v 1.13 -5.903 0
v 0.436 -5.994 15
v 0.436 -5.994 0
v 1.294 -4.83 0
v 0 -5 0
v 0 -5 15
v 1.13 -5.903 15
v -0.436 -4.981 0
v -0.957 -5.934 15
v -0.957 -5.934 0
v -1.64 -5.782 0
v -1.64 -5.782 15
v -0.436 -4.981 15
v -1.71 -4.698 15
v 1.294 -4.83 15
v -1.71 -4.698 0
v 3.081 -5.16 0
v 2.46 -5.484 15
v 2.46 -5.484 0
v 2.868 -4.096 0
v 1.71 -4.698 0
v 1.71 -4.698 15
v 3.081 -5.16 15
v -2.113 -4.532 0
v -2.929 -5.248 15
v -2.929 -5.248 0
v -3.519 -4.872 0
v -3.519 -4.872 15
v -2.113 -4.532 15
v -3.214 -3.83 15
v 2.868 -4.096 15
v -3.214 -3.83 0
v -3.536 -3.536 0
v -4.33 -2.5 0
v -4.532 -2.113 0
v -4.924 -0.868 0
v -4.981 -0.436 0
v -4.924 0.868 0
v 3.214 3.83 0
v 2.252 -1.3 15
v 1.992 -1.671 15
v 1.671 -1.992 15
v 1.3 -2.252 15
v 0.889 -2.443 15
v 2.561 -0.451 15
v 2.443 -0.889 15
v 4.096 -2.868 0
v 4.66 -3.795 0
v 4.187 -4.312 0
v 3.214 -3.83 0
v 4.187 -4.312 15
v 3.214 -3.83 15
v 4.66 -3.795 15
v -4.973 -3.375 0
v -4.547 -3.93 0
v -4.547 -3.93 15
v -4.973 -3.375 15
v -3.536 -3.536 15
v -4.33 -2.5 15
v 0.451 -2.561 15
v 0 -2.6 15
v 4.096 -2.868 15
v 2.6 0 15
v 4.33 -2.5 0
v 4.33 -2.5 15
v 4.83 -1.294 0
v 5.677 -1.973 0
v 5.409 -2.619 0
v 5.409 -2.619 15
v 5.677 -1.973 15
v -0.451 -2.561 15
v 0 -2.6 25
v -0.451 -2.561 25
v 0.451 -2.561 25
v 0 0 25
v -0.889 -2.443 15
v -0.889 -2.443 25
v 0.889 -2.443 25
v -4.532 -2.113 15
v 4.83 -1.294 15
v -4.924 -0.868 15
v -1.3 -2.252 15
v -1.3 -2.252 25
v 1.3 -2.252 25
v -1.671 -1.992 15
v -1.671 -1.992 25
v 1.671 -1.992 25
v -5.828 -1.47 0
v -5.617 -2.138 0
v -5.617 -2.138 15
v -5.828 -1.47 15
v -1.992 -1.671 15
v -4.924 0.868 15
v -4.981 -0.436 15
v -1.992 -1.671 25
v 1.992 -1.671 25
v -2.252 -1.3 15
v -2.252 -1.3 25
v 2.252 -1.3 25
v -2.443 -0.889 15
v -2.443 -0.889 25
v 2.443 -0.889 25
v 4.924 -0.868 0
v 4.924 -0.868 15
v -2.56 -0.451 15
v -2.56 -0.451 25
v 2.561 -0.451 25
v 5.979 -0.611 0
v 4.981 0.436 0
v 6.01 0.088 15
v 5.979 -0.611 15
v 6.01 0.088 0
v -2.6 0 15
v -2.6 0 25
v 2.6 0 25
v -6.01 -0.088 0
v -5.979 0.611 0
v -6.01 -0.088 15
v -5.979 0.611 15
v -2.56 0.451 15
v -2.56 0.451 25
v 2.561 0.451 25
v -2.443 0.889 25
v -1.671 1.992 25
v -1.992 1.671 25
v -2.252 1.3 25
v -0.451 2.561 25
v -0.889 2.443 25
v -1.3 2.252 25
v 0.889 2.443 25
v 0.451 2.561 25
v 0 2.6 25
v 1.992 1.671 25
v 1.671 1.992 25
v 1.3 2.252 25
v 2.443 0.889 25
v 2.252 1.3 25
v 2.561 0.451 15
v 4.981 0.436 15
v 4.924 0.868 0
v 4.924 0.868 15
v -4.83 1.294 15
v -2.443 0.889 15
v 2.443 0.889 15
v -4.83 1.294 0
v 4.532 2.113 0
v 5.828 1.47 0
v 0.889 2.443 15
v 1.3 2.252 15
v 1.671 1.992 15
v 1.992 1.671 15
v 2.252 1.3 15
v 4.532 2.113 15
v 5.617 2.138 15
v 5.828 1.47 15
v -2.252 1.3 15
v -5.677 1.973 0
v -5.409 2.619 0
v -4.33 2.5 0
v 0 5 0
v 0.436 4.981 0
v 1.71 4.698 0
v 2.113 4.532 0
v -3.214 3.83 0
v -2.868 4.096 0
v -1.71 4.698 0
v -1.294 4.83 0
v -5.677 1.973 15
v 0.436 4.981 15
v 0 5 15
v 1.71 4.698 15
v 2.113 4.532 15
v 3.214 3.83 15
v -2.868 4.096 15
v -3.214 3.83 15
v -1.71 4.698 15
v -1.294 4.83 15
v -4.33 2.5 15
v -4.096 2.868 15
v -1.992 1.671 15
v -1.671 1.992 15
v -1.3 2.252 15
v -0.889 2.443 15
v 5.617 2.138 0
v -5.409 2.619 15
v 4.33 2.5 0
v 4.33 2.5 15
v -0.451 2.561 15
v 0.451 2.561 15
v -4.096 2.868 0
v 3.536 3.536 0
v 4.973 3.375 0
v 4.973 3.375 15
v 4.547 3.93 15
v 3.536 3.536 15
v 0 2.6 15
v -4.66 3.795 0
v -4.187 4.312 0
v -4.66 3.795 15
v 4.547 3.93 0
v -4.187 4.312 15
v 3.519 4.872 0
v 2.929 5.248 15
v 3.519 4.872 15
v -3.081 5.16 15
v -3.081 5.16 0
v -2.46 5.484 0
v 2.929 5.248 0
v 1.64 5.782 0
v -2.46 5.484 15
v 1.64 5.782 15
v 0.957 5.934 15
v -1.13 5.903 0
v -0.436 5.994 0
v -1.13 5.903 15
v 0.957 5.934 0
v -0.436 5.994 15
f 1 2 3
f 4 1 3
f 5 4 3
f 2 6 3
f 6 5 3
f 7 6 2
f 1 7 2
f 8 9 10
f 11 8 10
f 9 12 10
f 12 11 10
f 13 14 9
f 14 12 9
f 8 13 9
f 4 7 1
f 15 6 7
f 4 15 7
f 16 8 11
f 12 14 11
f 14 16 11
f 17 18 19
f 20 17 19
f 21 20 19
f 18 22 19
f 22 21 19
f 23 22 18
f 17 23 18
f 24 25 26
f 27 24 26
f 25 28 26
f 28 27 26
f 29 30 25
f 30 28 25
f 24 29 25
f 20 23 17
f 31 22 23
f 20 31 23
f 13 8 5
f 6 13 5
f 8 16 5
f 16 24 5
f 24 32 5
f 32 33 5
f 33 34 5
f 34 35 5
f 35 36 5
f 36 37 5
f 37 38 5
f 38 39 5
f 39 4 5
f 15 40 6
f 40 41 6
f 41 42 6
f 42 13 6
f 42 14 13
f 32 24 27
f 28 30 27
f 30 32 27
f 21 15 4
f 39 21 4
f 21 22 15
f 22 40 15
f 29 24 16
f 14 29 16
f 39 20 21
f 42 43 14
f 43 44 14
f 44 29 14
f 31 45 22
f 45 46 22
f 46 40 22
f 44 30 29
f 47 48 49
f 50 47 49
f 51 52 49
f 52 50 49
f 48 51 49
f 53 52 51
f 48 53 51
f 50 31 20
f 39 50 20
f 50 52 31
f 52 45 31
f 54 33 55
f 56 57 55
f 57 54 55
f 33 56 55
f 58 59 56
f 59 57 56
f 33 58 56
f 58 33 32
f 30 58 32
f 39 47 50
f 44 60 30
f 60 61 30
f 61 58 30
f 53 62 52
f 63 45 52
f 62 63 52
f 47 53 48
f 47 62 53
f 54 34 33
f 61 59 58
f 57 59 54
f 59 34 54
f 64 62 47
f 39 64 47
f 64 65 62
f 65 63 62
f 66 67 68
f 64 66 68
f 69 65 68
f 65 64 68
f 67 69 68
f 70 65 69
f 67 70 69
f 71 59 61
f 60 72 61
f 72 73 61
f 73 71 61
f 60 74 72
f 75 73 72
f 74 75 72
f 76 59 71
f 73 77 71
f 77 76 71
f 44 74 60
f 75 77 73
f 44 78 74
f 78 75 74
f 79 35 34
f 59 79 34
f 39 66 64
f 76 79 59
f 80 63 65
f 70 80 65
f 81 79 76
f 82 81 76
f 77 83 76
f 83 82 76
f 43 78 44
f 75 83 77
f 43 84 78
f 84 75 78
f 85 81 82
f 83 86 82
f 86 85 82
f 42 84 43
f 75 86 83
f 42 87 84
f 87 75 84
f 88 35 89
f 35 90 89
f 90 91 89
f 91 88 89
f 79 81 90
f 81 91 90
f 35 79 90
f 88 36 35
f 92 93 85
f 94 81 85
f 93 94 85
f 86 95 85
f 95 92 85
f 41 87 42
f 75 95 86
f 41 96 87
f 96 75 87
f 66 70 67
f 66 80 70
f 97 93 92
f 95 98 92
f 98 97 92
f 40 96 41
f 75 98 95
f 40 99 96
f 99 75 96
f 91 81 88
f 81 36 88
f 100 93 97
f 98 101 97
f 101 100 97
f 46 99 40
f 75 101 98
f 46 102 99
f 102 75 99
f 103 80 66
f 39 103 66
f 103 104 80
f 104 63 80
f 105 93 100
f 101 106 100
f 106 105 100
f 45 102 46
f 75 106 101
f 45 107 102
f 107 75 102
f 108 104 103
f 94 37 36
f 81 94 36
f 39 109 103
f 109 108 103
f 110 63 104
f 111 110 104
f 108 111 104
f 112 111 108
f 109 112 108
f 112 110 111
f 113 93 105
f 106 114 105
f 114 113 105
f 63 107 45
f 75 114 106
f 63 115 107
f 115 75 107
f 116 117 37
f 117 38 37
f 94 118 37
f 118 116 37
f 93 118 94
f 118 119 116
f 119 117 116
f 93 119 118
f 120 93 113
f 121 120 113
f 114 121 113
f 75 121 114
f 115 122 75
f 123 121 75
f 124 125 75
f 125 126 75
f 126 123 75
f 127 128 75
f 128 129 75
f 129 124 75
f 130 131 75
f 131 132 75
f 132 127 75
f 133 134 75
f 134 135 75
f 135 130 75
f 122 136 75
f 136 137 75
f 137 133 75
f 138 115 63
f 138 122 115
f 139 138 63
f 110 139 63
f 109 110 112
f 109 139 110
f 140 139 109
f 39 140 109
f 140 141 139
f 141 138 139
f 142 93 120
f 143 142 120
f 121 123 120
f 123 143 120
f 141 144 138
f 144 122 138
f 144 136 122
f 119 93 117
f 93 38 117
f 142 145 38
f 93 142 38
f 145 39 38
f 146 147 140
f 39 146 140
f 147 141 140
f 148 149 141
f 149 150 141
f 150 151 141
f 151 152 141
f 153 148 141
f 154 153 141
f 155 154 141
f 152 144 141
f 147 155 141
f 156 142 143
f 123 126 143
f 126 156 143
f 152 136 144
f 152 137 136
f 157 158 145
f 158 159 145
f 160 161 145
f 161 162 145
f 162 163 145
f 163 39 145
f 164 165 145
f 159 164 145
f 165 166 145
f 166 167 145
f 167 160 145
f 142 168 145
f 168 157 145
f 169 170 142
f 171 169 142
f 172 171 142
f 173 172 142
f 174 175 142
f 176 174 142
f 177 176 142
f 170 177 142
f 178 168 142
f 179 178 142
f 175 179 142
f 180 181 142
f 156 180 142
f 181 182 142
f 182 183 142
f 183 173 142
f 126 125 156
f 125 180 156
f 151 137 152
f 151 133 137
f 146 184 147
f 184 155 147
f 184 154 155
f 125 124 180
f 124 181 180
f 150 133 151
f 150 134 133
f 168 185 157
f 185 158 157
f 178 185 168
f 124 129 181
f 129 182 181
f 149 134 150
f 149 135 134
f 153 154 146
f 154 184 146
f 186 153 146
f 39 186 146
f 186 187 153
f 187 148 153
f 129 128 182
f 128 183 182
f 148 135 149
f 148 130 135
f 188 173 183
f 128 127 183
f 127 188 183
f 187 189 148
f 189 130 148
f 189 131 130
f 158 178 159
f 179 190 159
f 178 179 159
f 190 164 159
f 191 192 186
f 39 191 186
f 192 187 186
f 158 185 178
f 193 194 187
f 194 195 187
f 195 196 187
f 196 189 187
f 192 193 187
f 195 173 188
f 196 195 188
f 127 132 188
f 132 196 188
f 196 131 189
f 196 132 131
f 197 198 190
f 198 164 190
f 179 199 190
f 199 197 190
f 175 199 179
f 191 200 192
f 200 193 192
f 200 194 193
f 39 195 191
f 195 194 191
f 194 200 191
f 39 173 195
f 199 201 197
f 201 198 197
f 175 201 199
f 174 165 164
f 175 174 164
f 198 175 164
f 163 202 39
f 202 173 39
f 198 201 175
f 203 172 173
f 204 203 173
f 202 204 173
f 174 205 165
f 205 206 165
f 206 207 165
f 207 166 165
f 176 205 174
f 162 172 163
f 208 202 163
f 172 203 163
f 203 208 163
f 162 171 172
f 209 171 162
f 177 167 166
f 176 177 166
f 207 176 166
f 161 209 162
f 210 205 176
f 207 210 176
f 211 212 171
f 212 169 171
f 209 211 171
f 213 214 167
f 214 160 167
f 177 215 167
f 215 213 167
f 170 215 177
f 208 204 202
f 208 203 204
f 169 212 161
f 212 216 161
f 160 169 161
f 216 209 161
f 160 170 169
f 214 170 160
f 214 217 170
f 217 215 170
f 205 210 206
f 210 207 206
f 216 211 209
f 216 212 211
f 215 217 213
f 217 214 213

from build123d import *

# Parameters (mm, degrees)
SKETCH1_R           = 5
BOSS_EXTRUDE1_DEPTH = 15
SKETCH1_3_R         = 2.6
BOSS_EXTRUDE2_DEPTH = 25
BOSS_EXTRUDE3_DEPTH = 15


with BuildPart() as part:
    # Sketch1 → Boss-Extrude1 (new body)
    with BuildSketch(Plane.XY):
        Circle(SKETCH1_R)
    extrude(amount=BOSS_EXTRUDE1_DEPTH)

    # Sketch1<3> → Boss-Extrude2 (add)
    with BuildSketch(Plane.XY):
        Circle(SKETCH1_3_R)
    extrude(amount=BOSS_EXTRUDE2_DEPTH)

    # Sketch2 → Boss-Extrude3 (add)
    with BuildSketch(Plane(origin=(0, 0, 0), x_dir=(-1, 0, 0), z_dir=(0, 0, -1))):
        with BuildLine():
            Line((0.436151452, 5.994353336), (1.130162855, 5.902985001))
            Line((1.130162855, 5.902985001), (1.294095226, 4.829629131))
            ThreePointArc((1.294095226, 4.829629131), (0.652630961, 4.957224307), (0, 5))
            Line((0, 5), (0.436151452, 5.994353336))
        make_face()
        with BuildLine():
            Line((2.460037888, 5.483677014), (3.080945471, 5.160452984))
            Line((3.080945471, 5.160452984), (2.867882182, 4.095760221))
            ThreePointArc((2.867882182, 4.095760221), (2.308743066, 4.435054166), (1.710100717, 4.698463104))
            Line((1.710100717, 4.698463104), (2.460037888, 5.483677014))
        make_face()
        with BuildLine():
            Line((4.187207448, 4.311588314), (4.660120594, 3.795494178))
            Line((4.660120594, 3.795494178), (4.095760221, 2.867882182))
            ThreePointArc((4.095760221, 2.867882182), (3.686386684, 3.377951038), (3.213938048, 3.830222216))
            Line((3.213938048, 3.830222216), (4.187207448, 4.311588314))
        make_face()
        with BuildLine():
            Line((5.409337994, 2.619458431), (5.677216396, 1.972742758))
            Line((5.677216396, 1.972742758), (4.829629131, 1.294095226))
            ThreePointArc((4.829629131, 1.294095226), (4.619397663, 1.913417162), (4.330127019, 2.5))
            Line((4.330127019, 2.5), (5.409337994, 2.619458431))
        make_face()
        with BuildLine():
            Line((5.979022544, 0.611383202), (6.009556115, -0.087950553))
            Line((6.009556115, -0.087950553), (4.98097349, -0.435778714))
            ThreePointArc((4.98097349, -0.435778714), (4.995241108, 0.218096937), (4.924038765, 0.868240888))
            Line((4.924038765, 0.868240888), (5.979022544, 0.611383202))
        make_face()
        with BuildLine():
            Line((5.827548734, -1.470433864), (5.617054675, -2.13803573))
            Line((5.617054675, -2.13803573), (4.531538935, -2.113091309))
            ThreePointArc((4.531538935, -2.113091309), (4.768584754, -1.503528998), (4.924038765, -0.868240888))
            Line((4.924038765, -0.868240888), (5.827548734, -1.470433864))
        make_face()
        with BuildLine():
            Line((4.973186542, -3.374894905), (4.547053542, -3.930242243))
            Line((4.547053542, -3.930242243), (3.535533906, -3.535533906))
            ThreePointArc((3.535533906, -3.535533906), (3.966766701, -3.043807145), (4.330127019, -2.5))
            Line((4.330127019, -2.5), (4.973186542, -3.374894905))
        make_face()
        with BuildLine():
            Line((3.518984656, -4.872293812), (2.928610644, -5.248403538))
            Line((2.928610644, -5.248403538), (2.113091309, -4.531538935))
            ThreePointArc((2.113091309, -4.531538935), (2.686498042, -4.216957229), (3.213938048, -3.830222216))
            Line((3.213938048, -3.830222216), (3.518984656, -4.872293812))
        make_face()
        with BuildLine():
            Line((1.640341286, -5.782022178), (0.956934081, -5.933529908))
            Line((0.956934081, -5.933529908), (0.435778714, -4.98097349))
            ThreePointArc((0.435778714, -4.98097349), (1.08219807, -4.881480036), (1.710100717, -4.698463104))
            Line((1.710100717, -4.698463104), (1.640341286, -5.782022178))
        make_face()
        with BuildLine():
            Line((-0.436151452, -5.994353336), (-1.130162855, -5.902985001))
            Line((-1.130162855, -5.902985001), (-1.294095226, -4.829629131))
            ThreePointArc((-1.294095226, -4.829629131), (-0.652630961, -4.957224307), (0, -5))
            Line((0, -5), (-0.436151452, -5.994353336))
        make_face()
        with BuildLine():
            Line((-2.460037888, -5.483677014), (-3.080945471, -5.160452984))
            Line((-3.080945471, -5.160452984), (-2.867882182, -4.095760221))
            ThreePointArc((-2.867882182, -4.095760221), (-2.308743066, -4.435054166), (-1.710100717, -4.698463104))
            Line((-1.710100717, -4.698463104), (-2.460037888, -5.483677014))
        make_face()
        with BuildLine():
            Line((-4.187207448, -4.311588314), (-4.660120594, -3.795494178))
            Line((-4.660120594, -3.795494178), (-4.095760221, -2.867882182))
            ThreePointArc((-4.095760221, -2.867882182), (-3.686386684, -3.377951038), (-3.213938048, -3.830222216))
            Line((-3.213938048, -3.830222216), (-4.187207448, -4.311588314))
        make_face()
        with BuildLine():
            Line((-5.409337994, -2.619458431), (-5.677216396, -1.972742758))
            Line((-5.677216396, -1.972742758), (-4.829629131, -1.294095226))
            ThreePointArc((-4.829629131, -1.294095226), (-4.619397663, -1.913417162), (-4.330127019, -2.5))
            Line((-4.330127019, -2.5), (-5.409337994, -2.619458431))
        make_face()
        with BuildLine():
            Line((-5.979022544, -0.611383202), (-6.009556115, 0.087950553))
            Line((-6.009556115, 0.087950553), (-4.98097349, 0.435778714))
            ThreePointArc((-4.98097349, 0.435778714), (-4.995241108, -0.218096937), (-4.924038765, -0.868240888))
            Line((-4.924038765, -0.868240888), (-5.979022544, -0.611383202))
        make_face()
        with BuildLine():
            Line((-5.827548734, 1.470433864), (-5.617054675, 2.13803573))
            Line((-5.617054675, 2.13803573), (-4.531538935, 2.113091309))
            ThreePointArc((-4.531538935, 2.113091309), (-4.768584754, 1.503528998), (-4.924038765, 0.868240888))
            Line((-4.924038765, 0.868240888), (-5.827548734, 1.470433864))
        make_face()
        with BuildLine():
            Line((-4.973186542, 3.374894905), (-4.547053542, 3.930242243))
            Line((-4.547053542, 3.930242243), (-3.535533906, 3.535533906))
            ThreePointArc((-3.535533906, 3.535533906), (-3.966766701, 3.043807145), (-4.330127019, 2.5))
            Line((-4.330127019, 2.5), (-4.973186542, 3.374894905))
        make_face()
        with BuildLine():
            Line((-3.518984656, 4.872293812), (-2.928610644, 5.248403538))
            Line((-2.928610644, 5.248403538), (-2.113091309, 4.531538935))
            ThreePointArc((-2.113091309, 4.531538935), (-2.686498042, 4.216957229), (-3.213938048, 3.830222216))
            Line((-3.213938048, 3.830222216), (-3.518984656, 4.872293812))
        make_face()
        with BuildLine():
            Line((-1.640341286, 5.782022178), (-0.956934081, 5.933529908))
            Line((-0.956934081, 5.933529908), (-0.435778714, 4.98097349))
            ThreePointArc((-0.435778714, 4.98097349), (-1.08219807, 4.881480036), (-1.710100717, 4.698463104))
            Line((-1.710100717, 4.698463104), (-1.640341286, 5.782022178))
        make_face()
    extrude(amount=-BOSS_EXTRUDE3_DEPTH)


solid = part.part
